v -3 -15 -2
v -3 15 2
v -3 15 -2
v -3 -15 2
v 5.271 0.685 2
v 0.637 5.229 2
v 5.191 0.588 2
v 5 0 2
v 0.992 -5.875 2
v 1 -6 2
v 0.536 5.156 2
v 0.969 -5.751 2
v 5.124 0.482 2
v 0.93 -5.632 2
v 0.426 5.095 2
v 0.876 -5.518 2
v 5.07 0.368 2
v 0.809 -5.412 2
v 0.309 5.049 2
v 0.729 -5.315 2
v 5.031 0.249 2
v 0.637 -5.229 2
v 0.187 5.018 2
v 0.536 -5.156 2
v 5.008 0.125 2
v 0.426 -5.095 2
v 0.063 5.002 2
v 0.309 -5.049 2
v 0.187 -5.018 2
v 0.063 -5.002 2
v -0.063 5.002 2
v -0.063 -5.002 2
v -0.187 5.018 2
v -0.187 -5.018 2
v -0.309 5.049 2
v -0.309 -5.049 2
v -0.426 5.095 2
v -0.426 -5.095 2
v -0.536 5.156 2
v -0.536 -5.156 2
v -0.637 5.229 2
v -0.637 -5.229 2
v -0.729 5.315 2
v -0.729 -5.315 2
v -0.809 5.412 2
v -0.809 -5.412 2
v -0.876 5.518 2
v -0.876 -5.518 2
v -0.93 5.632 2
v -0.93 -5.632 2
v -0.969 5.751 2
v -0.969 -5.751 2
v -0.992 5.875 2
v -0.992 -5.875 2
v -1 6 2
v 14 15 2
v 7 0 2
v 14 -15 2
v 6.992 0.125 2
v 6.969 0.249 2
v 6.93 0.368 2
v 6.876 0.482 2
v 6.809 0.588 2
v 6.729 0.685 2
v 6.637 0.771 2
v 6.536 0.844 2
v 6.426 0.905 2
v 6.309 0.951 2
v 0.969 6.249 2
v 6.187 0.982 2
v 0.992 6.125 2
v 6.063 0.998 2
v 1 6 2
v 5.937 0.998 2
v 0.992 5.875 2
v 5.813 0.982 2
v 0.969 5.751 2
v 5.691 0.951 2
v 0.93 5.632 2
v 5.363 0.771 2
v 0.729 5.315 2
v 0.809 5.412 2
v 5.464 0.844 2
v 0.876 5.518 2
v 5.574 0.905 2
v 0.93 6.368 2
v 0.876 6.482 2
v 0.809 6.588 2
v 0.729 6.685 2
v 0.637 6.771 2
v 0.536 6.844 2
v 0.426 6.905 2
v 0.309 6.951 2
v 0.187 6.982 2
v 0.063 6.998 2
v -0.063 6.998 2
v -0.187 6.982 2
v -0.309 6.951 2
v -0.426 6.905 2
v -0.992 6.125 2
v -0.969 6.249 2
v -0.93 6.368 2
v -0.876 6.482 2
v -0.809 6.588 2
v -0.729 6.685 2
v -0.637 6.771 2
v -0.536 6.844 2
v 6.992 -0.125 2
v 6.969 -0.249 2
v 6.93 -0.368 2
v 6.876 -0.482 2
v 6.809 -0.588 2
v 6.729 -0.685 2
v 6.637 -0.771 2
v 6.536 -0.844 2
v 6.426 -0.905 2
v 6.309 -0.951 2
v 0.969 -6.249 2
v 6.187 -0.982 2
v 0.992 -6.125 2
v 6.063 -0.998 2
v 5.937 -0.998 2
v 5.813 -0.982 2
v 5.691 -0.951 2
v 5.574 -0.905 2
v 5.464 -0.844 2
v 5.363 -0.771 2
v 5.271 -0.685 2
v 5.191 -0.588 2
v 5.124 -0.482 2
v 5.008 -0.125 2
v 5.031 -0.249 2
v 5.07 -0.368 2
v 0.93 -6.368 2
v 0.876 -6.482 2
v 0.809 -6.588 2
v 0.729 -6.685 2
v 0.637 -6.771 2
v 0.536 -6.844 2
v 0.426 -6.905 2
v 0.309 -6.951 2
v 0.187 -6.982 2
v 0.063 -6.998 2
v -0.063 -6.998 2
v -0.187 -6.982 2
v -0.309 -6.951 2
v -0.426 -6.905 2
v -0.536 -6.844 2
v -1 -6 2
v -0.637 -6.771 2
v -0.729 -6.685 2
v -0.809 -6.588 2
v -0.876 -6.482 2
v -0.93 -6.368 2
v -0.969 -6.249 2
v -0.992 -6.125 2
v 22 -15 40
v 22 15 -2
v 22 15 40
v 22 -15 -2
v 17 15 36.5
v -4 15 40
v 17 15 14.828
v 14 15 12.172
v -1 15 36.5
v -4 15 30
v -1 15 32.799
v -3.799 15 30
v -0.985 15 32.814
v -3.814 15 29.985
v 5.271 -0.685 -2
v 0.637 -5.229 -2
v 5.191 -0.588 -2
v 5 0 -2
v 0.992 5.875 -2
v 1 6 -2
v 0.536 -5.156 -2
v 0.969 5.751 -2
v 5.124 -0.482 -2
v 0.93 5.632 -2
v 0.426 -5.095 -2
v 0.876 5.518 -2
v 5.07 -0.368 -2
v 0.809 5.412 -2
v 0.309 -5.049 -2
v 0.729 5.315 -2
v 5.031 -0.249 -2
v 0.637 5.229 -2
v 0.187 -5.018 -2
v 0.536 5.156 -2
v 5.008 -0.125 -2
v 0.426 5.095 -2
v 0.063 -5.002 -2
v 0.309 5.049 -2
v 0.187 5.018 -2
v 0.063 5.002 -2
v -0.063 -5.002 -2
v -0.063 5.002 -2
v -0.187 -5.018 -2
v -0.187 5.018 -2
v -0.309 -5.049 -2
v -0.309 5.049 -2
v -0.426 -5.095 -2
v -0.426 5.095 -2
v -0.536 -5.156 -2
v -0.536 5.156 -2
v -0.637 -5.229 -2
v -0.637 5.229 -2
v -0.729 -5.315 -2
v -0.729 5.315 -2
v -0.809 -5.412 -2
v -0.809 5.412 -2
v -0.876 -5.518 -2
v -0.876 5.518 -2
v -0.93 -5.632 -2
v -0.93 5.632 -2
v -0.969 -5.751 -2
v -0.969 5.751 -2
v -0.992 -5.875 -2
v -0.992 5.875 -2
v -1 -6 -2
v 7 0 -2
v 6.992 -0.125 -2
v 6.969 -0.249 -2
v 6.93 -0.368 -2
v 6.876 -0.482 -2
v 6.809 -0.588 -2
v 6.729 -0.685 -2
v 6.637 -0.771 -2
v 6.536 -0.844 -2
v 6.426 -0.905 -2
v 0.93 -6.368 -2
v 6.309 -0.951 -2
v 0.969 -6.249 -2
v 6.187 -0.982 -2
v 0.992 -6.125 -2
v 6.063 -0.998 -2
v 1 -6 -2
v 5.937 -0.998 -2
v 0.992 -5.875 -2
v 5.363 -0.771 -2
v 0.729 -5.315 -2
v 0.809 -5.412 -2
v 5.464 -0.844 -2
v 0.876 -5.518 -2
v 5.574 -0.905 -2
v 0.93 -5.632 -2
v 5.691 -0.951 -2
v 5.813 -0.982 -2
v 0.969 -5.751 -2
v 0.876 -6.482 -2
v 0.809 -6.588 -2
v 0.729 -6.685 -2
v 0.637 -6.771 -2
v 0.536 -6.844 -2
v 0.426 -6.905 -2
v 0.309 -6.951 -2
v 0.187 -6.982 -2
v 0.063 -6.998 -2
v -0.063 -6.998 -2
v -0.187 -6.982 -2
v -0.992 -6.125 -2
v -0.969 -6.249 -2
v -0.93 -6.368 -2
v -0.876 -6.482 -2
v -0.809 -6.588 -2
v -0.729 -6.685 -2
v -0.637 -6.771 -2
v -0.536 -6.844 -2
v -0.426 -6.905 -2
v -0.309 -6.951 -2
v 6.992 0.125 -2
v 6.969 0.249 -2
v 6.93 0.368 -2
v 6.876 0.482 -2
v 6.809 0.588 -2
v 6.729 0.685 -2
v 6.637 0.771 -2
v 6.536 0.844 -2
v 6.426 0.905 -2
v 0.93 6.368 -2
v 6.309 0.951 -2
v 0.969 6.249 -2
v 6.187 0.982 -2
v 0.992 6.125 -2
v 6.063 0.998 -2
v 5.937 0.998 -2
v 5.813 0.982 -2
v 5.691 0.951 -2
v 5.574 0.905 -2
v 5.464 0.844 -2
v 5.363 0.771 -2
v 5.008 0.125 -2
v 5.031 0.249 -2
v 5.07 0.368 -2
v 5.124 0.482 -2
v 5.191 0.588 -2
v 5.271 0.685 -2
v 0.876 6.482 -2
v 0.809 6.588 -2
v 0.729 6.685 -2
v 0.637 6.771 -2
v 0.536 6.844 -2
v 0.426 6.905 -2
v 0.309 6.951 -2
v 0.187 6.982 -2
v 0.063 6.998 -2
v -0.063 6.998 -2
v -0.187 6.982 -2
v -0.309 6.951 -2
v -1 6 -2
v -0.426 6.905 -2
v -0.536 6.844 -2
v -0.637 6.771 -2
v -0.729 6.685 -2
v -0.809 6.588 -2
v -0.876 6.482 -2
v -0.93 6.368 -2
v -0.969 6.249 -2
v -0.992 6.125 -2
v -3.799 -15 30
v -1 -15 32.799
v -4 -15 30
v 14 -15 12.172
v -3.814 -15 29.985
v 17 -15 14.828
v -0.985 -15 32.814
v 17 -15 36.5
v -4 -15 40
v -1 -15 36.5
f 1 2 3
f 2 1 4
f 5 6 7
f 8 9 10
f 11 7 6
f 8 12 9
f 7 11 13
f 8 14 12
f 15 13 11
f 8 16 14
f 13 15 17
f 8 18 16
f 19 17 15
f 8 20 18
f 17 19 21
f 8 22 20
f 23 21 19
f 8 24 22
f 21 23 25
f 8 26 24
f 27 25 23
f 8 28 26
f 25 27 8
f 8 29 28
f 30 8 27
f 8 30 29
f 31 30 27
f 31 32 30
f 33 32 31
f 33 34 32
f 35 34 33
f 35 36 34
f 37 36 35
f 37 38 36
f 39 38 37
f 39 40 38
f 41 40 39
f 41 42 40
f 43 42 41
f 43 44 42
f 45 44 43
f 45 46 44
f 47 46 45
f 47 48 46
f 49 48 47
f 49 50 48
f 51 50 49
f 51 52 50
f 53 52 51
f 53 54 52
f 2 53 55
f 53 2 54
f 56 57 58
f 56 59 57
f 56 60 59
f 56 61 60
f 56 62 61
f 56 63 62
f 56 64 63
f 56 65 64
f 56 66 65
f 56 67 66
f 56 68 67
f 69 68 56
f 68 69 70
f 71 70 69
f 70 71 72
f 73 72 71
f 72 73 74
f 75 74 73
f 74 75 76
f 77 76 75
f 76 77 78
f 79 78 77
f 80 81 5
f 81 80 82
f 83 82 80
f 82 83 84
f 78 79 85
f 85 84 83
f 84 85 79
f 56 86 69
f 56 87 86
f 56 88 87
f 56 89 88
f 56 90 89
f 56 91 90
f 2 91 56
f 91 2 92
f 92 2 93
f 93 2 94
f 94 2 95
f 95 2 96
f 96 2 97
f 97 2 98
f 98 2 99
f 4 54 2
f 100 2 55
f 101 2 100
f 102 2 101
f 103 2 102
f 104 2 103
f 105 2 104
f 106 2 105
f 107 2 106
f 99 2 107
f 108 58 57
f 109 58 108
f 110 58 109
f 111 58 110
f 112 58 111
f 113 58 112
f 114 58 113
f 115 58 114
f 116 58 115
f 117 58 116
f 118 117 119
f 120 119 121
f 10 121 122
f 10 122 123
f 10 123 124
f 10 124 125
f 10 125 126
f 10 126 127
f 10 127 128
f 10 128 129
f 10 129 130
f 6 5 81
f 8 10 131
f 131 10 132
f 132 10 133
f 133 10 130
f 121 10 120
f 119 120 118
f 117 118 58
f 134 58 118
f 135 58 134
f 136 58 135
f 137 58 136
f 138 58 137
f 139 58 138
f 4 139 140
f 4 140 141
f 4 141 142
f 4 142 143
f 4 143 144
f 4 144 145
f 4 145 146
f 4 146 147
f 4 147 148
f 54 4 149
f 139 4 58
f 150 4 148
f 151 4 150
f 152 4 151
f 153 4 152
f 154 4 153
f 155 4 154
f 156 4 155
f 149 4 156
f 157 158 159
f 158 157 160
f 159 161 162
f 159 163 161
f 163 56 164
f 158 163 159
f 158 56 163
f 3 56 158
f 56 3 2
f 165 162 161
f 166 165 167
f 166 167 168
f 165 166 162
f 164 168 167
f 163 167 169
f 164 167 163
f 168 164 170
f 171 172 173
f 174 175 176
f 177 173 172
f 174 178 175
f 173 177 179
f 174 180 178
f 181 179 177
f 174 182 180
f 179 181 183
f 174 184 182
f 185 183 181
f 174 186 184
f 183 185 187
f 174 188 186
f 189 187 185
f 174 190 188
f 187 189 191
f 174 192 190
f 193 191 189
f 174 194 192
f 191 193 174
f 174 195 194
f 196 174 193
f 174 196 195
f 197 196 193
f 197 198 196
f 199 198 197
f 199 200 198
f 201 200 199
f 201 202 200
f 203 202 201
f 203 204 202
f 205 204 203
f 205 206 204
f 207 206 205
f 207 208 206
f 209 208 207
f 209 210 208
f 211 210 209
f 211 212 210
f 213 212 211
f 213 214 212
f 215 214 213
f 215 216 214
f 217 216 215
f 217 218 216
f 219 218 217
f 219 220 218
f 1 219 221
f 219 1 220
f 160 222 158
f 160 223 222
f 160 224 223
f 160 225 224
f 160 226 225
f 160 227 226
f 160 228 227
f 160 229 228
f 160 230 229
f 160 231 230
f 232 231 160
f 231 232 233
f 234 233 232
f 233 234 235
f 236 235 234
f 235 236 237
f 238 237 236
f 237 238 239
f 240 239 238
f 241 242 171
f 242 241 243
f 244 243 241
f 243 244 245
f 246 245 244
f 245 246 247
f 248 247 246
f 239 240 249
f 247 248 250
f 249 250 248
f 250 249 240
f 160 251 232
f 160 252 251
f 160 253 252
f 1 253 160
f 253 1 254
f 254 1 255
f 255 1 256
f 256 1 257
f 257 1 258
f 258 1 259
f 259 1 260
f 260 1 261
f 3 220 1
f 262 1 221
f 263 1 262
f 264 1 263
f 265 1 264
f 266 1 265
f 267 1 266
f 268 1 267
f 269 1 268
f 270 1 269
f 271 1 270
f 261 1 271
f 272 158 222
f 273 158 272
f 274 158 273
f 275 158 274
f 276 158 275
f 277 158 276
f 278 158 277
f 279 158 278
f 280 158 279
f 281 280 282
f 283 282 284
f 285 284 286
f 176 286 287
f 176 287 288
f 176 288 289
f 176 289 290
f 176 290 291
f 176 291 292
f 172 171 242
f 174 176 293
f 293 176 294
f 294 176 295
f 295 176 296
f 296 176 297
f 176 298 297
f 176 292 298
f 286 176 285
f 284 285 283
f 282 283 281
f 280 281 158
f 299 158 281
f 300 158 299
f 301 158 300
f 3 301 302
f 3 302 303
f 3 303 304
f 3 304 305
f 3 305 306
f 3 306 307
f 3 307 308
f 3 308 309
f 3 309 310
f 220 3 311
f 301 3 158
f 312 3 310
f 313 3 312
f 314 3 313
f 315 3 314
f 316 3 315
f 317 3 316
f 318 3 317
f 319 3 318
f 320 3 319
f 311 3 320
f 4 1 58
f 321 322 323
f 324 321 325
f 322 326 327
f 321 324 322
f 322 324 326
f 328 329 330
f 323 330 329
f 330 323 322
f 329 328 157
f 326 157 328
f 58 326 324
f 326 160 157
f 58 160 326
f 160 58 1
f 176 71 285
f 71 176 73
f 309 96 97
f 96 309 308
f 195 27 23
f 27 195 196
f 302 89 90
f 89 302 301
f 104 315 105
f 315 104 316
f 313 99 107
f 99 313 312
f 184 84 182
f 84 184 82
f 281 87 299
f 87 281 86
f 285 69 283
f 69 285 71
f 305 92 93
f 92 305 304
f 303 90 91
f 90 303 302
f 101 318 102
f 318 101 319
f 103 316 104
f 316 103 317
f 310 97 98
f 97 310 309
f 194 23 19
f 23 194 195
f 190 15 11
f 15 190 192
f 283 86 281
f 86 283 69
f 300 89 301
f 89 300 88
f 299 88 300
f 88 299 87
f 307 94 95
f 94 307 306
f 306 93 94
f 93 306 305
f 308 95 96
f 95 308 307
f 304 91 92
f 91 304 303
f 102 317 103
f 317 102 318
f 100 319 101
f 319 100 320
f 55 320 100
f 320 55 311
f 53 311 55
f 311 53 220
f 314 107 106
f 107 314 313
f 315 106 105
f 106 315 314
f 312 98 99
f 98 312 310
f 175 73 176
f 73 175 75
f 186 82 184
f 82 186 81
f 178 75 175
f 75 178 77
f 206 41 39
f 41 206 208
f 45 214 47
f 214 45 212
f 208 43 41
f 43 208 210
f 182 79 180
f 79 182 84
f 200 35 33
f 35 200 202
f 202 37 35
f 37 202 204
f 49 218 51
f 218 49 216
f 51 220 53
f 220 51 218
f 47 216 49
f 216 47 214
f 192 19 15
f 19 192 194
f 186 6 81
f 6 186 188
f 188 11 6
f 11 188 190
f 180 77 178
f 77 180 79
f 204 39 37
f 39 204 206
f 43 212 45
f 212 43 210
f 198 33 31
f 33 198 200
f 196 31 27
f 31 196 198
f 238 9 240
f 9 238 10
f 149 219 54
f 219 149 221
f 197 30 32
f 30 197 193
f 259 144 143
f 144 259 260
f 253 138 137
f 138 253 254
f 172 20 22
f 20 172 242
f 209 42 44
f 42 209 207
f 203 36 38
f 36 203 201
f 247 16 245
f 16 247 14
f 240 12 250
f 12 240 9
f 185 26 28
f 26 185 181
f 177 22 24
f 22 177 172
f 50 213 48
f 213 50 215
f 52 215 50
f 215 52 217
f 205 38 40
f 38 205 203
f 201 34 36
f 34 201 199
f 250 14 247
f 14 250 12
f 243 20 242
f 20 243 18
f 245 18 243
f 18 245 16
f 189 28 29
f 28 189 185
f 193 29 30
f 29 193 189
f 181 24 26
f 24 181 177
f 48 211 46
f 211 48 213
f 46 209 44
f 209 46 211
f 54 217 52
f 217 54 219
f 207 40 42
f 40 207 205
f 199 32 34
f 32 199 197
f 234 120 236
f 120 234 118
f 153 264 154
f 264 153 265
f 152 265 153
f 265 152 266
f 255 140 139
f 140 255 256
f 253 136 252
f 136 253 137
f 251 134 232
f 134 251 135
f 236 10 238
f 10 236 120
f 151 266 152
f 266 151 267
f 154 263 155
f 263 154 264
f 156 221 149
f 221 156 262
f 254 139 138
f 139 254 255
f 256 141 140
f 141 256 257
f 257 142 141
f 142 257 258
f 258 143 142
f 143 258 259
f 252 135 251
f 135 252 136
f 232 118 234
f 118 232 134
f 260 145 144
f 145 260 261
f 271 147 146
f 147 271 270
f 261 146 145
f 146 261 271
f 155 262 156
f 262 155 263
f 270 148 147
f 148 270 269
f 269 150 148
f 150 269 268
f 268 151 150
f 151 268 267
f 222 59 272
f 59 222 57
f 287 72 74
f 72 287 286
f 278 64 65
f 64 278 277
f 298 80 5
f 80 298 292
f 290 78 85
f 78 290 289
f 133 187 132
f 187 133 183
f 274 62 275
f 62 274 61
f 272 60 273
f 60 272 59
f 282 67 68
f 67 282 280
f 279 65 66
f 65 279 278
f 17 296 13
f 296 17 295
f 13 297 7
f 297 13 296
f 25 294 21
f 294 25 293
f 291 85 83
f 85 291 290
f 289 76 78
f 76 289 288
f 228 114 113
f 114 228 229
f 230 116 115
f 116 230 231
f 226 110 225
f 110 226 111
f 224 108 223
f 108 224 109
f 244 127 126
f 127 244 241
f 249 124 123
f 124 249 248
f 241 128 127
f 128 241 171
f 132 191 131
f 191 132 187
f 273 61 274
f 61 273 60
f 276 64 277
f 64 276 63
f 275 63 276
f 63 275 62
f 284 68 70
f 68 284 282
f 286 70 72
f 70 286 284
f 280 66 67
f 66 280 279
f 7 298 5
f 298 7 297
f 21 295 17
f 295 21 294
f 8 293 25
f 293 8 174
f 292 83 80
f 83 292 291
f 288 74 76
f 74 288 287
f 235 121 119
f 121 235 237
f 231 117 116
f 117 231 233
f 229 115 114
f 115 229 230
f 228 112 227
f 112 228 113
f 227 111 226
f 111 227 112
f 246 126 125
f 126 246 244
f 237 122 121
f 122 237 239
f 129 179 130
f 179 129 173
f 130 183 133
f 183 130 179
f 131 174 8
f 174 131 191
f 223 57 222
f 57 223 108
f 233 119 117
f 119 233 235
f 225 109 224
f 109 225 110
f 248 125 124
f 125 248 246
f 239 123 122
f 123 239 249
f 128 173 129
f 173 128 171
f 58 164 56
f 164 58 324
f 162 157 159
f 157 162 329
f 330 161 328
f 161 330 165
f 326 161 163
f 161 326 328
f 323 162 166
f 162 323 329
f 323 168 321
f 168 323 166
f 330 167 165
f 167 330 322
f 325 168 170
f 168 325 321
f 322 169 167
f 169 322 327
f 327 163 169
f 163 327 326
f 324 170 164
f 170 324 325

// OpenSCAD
$fn=50;
difference(){
    translate([9.5,0,0])
cube([25,30,4], center=true);
    translate([0,6,0])
cylinder(h=5,r=1,center=true);
    translate([0,-6,0])
cylinder(h=5,r=1,center=true);
    translate([6,0,0])
cylinder(h=5,r=1,center=true);
}

difference(){
    translate([18,0,20])
cube([8,30,40], center=true);

    translate([15,0,25])
cube([4,32,23], center=true);
}

difference(){
    translate([6,0,35])
cube([20,30,10], center=true);

    translate([9,0,33])
cube([20,32,7], center=true);
}

    translate([7.5,0,21.5])
    rotate([0,45,0])
cube([28,30,4], center=true);
